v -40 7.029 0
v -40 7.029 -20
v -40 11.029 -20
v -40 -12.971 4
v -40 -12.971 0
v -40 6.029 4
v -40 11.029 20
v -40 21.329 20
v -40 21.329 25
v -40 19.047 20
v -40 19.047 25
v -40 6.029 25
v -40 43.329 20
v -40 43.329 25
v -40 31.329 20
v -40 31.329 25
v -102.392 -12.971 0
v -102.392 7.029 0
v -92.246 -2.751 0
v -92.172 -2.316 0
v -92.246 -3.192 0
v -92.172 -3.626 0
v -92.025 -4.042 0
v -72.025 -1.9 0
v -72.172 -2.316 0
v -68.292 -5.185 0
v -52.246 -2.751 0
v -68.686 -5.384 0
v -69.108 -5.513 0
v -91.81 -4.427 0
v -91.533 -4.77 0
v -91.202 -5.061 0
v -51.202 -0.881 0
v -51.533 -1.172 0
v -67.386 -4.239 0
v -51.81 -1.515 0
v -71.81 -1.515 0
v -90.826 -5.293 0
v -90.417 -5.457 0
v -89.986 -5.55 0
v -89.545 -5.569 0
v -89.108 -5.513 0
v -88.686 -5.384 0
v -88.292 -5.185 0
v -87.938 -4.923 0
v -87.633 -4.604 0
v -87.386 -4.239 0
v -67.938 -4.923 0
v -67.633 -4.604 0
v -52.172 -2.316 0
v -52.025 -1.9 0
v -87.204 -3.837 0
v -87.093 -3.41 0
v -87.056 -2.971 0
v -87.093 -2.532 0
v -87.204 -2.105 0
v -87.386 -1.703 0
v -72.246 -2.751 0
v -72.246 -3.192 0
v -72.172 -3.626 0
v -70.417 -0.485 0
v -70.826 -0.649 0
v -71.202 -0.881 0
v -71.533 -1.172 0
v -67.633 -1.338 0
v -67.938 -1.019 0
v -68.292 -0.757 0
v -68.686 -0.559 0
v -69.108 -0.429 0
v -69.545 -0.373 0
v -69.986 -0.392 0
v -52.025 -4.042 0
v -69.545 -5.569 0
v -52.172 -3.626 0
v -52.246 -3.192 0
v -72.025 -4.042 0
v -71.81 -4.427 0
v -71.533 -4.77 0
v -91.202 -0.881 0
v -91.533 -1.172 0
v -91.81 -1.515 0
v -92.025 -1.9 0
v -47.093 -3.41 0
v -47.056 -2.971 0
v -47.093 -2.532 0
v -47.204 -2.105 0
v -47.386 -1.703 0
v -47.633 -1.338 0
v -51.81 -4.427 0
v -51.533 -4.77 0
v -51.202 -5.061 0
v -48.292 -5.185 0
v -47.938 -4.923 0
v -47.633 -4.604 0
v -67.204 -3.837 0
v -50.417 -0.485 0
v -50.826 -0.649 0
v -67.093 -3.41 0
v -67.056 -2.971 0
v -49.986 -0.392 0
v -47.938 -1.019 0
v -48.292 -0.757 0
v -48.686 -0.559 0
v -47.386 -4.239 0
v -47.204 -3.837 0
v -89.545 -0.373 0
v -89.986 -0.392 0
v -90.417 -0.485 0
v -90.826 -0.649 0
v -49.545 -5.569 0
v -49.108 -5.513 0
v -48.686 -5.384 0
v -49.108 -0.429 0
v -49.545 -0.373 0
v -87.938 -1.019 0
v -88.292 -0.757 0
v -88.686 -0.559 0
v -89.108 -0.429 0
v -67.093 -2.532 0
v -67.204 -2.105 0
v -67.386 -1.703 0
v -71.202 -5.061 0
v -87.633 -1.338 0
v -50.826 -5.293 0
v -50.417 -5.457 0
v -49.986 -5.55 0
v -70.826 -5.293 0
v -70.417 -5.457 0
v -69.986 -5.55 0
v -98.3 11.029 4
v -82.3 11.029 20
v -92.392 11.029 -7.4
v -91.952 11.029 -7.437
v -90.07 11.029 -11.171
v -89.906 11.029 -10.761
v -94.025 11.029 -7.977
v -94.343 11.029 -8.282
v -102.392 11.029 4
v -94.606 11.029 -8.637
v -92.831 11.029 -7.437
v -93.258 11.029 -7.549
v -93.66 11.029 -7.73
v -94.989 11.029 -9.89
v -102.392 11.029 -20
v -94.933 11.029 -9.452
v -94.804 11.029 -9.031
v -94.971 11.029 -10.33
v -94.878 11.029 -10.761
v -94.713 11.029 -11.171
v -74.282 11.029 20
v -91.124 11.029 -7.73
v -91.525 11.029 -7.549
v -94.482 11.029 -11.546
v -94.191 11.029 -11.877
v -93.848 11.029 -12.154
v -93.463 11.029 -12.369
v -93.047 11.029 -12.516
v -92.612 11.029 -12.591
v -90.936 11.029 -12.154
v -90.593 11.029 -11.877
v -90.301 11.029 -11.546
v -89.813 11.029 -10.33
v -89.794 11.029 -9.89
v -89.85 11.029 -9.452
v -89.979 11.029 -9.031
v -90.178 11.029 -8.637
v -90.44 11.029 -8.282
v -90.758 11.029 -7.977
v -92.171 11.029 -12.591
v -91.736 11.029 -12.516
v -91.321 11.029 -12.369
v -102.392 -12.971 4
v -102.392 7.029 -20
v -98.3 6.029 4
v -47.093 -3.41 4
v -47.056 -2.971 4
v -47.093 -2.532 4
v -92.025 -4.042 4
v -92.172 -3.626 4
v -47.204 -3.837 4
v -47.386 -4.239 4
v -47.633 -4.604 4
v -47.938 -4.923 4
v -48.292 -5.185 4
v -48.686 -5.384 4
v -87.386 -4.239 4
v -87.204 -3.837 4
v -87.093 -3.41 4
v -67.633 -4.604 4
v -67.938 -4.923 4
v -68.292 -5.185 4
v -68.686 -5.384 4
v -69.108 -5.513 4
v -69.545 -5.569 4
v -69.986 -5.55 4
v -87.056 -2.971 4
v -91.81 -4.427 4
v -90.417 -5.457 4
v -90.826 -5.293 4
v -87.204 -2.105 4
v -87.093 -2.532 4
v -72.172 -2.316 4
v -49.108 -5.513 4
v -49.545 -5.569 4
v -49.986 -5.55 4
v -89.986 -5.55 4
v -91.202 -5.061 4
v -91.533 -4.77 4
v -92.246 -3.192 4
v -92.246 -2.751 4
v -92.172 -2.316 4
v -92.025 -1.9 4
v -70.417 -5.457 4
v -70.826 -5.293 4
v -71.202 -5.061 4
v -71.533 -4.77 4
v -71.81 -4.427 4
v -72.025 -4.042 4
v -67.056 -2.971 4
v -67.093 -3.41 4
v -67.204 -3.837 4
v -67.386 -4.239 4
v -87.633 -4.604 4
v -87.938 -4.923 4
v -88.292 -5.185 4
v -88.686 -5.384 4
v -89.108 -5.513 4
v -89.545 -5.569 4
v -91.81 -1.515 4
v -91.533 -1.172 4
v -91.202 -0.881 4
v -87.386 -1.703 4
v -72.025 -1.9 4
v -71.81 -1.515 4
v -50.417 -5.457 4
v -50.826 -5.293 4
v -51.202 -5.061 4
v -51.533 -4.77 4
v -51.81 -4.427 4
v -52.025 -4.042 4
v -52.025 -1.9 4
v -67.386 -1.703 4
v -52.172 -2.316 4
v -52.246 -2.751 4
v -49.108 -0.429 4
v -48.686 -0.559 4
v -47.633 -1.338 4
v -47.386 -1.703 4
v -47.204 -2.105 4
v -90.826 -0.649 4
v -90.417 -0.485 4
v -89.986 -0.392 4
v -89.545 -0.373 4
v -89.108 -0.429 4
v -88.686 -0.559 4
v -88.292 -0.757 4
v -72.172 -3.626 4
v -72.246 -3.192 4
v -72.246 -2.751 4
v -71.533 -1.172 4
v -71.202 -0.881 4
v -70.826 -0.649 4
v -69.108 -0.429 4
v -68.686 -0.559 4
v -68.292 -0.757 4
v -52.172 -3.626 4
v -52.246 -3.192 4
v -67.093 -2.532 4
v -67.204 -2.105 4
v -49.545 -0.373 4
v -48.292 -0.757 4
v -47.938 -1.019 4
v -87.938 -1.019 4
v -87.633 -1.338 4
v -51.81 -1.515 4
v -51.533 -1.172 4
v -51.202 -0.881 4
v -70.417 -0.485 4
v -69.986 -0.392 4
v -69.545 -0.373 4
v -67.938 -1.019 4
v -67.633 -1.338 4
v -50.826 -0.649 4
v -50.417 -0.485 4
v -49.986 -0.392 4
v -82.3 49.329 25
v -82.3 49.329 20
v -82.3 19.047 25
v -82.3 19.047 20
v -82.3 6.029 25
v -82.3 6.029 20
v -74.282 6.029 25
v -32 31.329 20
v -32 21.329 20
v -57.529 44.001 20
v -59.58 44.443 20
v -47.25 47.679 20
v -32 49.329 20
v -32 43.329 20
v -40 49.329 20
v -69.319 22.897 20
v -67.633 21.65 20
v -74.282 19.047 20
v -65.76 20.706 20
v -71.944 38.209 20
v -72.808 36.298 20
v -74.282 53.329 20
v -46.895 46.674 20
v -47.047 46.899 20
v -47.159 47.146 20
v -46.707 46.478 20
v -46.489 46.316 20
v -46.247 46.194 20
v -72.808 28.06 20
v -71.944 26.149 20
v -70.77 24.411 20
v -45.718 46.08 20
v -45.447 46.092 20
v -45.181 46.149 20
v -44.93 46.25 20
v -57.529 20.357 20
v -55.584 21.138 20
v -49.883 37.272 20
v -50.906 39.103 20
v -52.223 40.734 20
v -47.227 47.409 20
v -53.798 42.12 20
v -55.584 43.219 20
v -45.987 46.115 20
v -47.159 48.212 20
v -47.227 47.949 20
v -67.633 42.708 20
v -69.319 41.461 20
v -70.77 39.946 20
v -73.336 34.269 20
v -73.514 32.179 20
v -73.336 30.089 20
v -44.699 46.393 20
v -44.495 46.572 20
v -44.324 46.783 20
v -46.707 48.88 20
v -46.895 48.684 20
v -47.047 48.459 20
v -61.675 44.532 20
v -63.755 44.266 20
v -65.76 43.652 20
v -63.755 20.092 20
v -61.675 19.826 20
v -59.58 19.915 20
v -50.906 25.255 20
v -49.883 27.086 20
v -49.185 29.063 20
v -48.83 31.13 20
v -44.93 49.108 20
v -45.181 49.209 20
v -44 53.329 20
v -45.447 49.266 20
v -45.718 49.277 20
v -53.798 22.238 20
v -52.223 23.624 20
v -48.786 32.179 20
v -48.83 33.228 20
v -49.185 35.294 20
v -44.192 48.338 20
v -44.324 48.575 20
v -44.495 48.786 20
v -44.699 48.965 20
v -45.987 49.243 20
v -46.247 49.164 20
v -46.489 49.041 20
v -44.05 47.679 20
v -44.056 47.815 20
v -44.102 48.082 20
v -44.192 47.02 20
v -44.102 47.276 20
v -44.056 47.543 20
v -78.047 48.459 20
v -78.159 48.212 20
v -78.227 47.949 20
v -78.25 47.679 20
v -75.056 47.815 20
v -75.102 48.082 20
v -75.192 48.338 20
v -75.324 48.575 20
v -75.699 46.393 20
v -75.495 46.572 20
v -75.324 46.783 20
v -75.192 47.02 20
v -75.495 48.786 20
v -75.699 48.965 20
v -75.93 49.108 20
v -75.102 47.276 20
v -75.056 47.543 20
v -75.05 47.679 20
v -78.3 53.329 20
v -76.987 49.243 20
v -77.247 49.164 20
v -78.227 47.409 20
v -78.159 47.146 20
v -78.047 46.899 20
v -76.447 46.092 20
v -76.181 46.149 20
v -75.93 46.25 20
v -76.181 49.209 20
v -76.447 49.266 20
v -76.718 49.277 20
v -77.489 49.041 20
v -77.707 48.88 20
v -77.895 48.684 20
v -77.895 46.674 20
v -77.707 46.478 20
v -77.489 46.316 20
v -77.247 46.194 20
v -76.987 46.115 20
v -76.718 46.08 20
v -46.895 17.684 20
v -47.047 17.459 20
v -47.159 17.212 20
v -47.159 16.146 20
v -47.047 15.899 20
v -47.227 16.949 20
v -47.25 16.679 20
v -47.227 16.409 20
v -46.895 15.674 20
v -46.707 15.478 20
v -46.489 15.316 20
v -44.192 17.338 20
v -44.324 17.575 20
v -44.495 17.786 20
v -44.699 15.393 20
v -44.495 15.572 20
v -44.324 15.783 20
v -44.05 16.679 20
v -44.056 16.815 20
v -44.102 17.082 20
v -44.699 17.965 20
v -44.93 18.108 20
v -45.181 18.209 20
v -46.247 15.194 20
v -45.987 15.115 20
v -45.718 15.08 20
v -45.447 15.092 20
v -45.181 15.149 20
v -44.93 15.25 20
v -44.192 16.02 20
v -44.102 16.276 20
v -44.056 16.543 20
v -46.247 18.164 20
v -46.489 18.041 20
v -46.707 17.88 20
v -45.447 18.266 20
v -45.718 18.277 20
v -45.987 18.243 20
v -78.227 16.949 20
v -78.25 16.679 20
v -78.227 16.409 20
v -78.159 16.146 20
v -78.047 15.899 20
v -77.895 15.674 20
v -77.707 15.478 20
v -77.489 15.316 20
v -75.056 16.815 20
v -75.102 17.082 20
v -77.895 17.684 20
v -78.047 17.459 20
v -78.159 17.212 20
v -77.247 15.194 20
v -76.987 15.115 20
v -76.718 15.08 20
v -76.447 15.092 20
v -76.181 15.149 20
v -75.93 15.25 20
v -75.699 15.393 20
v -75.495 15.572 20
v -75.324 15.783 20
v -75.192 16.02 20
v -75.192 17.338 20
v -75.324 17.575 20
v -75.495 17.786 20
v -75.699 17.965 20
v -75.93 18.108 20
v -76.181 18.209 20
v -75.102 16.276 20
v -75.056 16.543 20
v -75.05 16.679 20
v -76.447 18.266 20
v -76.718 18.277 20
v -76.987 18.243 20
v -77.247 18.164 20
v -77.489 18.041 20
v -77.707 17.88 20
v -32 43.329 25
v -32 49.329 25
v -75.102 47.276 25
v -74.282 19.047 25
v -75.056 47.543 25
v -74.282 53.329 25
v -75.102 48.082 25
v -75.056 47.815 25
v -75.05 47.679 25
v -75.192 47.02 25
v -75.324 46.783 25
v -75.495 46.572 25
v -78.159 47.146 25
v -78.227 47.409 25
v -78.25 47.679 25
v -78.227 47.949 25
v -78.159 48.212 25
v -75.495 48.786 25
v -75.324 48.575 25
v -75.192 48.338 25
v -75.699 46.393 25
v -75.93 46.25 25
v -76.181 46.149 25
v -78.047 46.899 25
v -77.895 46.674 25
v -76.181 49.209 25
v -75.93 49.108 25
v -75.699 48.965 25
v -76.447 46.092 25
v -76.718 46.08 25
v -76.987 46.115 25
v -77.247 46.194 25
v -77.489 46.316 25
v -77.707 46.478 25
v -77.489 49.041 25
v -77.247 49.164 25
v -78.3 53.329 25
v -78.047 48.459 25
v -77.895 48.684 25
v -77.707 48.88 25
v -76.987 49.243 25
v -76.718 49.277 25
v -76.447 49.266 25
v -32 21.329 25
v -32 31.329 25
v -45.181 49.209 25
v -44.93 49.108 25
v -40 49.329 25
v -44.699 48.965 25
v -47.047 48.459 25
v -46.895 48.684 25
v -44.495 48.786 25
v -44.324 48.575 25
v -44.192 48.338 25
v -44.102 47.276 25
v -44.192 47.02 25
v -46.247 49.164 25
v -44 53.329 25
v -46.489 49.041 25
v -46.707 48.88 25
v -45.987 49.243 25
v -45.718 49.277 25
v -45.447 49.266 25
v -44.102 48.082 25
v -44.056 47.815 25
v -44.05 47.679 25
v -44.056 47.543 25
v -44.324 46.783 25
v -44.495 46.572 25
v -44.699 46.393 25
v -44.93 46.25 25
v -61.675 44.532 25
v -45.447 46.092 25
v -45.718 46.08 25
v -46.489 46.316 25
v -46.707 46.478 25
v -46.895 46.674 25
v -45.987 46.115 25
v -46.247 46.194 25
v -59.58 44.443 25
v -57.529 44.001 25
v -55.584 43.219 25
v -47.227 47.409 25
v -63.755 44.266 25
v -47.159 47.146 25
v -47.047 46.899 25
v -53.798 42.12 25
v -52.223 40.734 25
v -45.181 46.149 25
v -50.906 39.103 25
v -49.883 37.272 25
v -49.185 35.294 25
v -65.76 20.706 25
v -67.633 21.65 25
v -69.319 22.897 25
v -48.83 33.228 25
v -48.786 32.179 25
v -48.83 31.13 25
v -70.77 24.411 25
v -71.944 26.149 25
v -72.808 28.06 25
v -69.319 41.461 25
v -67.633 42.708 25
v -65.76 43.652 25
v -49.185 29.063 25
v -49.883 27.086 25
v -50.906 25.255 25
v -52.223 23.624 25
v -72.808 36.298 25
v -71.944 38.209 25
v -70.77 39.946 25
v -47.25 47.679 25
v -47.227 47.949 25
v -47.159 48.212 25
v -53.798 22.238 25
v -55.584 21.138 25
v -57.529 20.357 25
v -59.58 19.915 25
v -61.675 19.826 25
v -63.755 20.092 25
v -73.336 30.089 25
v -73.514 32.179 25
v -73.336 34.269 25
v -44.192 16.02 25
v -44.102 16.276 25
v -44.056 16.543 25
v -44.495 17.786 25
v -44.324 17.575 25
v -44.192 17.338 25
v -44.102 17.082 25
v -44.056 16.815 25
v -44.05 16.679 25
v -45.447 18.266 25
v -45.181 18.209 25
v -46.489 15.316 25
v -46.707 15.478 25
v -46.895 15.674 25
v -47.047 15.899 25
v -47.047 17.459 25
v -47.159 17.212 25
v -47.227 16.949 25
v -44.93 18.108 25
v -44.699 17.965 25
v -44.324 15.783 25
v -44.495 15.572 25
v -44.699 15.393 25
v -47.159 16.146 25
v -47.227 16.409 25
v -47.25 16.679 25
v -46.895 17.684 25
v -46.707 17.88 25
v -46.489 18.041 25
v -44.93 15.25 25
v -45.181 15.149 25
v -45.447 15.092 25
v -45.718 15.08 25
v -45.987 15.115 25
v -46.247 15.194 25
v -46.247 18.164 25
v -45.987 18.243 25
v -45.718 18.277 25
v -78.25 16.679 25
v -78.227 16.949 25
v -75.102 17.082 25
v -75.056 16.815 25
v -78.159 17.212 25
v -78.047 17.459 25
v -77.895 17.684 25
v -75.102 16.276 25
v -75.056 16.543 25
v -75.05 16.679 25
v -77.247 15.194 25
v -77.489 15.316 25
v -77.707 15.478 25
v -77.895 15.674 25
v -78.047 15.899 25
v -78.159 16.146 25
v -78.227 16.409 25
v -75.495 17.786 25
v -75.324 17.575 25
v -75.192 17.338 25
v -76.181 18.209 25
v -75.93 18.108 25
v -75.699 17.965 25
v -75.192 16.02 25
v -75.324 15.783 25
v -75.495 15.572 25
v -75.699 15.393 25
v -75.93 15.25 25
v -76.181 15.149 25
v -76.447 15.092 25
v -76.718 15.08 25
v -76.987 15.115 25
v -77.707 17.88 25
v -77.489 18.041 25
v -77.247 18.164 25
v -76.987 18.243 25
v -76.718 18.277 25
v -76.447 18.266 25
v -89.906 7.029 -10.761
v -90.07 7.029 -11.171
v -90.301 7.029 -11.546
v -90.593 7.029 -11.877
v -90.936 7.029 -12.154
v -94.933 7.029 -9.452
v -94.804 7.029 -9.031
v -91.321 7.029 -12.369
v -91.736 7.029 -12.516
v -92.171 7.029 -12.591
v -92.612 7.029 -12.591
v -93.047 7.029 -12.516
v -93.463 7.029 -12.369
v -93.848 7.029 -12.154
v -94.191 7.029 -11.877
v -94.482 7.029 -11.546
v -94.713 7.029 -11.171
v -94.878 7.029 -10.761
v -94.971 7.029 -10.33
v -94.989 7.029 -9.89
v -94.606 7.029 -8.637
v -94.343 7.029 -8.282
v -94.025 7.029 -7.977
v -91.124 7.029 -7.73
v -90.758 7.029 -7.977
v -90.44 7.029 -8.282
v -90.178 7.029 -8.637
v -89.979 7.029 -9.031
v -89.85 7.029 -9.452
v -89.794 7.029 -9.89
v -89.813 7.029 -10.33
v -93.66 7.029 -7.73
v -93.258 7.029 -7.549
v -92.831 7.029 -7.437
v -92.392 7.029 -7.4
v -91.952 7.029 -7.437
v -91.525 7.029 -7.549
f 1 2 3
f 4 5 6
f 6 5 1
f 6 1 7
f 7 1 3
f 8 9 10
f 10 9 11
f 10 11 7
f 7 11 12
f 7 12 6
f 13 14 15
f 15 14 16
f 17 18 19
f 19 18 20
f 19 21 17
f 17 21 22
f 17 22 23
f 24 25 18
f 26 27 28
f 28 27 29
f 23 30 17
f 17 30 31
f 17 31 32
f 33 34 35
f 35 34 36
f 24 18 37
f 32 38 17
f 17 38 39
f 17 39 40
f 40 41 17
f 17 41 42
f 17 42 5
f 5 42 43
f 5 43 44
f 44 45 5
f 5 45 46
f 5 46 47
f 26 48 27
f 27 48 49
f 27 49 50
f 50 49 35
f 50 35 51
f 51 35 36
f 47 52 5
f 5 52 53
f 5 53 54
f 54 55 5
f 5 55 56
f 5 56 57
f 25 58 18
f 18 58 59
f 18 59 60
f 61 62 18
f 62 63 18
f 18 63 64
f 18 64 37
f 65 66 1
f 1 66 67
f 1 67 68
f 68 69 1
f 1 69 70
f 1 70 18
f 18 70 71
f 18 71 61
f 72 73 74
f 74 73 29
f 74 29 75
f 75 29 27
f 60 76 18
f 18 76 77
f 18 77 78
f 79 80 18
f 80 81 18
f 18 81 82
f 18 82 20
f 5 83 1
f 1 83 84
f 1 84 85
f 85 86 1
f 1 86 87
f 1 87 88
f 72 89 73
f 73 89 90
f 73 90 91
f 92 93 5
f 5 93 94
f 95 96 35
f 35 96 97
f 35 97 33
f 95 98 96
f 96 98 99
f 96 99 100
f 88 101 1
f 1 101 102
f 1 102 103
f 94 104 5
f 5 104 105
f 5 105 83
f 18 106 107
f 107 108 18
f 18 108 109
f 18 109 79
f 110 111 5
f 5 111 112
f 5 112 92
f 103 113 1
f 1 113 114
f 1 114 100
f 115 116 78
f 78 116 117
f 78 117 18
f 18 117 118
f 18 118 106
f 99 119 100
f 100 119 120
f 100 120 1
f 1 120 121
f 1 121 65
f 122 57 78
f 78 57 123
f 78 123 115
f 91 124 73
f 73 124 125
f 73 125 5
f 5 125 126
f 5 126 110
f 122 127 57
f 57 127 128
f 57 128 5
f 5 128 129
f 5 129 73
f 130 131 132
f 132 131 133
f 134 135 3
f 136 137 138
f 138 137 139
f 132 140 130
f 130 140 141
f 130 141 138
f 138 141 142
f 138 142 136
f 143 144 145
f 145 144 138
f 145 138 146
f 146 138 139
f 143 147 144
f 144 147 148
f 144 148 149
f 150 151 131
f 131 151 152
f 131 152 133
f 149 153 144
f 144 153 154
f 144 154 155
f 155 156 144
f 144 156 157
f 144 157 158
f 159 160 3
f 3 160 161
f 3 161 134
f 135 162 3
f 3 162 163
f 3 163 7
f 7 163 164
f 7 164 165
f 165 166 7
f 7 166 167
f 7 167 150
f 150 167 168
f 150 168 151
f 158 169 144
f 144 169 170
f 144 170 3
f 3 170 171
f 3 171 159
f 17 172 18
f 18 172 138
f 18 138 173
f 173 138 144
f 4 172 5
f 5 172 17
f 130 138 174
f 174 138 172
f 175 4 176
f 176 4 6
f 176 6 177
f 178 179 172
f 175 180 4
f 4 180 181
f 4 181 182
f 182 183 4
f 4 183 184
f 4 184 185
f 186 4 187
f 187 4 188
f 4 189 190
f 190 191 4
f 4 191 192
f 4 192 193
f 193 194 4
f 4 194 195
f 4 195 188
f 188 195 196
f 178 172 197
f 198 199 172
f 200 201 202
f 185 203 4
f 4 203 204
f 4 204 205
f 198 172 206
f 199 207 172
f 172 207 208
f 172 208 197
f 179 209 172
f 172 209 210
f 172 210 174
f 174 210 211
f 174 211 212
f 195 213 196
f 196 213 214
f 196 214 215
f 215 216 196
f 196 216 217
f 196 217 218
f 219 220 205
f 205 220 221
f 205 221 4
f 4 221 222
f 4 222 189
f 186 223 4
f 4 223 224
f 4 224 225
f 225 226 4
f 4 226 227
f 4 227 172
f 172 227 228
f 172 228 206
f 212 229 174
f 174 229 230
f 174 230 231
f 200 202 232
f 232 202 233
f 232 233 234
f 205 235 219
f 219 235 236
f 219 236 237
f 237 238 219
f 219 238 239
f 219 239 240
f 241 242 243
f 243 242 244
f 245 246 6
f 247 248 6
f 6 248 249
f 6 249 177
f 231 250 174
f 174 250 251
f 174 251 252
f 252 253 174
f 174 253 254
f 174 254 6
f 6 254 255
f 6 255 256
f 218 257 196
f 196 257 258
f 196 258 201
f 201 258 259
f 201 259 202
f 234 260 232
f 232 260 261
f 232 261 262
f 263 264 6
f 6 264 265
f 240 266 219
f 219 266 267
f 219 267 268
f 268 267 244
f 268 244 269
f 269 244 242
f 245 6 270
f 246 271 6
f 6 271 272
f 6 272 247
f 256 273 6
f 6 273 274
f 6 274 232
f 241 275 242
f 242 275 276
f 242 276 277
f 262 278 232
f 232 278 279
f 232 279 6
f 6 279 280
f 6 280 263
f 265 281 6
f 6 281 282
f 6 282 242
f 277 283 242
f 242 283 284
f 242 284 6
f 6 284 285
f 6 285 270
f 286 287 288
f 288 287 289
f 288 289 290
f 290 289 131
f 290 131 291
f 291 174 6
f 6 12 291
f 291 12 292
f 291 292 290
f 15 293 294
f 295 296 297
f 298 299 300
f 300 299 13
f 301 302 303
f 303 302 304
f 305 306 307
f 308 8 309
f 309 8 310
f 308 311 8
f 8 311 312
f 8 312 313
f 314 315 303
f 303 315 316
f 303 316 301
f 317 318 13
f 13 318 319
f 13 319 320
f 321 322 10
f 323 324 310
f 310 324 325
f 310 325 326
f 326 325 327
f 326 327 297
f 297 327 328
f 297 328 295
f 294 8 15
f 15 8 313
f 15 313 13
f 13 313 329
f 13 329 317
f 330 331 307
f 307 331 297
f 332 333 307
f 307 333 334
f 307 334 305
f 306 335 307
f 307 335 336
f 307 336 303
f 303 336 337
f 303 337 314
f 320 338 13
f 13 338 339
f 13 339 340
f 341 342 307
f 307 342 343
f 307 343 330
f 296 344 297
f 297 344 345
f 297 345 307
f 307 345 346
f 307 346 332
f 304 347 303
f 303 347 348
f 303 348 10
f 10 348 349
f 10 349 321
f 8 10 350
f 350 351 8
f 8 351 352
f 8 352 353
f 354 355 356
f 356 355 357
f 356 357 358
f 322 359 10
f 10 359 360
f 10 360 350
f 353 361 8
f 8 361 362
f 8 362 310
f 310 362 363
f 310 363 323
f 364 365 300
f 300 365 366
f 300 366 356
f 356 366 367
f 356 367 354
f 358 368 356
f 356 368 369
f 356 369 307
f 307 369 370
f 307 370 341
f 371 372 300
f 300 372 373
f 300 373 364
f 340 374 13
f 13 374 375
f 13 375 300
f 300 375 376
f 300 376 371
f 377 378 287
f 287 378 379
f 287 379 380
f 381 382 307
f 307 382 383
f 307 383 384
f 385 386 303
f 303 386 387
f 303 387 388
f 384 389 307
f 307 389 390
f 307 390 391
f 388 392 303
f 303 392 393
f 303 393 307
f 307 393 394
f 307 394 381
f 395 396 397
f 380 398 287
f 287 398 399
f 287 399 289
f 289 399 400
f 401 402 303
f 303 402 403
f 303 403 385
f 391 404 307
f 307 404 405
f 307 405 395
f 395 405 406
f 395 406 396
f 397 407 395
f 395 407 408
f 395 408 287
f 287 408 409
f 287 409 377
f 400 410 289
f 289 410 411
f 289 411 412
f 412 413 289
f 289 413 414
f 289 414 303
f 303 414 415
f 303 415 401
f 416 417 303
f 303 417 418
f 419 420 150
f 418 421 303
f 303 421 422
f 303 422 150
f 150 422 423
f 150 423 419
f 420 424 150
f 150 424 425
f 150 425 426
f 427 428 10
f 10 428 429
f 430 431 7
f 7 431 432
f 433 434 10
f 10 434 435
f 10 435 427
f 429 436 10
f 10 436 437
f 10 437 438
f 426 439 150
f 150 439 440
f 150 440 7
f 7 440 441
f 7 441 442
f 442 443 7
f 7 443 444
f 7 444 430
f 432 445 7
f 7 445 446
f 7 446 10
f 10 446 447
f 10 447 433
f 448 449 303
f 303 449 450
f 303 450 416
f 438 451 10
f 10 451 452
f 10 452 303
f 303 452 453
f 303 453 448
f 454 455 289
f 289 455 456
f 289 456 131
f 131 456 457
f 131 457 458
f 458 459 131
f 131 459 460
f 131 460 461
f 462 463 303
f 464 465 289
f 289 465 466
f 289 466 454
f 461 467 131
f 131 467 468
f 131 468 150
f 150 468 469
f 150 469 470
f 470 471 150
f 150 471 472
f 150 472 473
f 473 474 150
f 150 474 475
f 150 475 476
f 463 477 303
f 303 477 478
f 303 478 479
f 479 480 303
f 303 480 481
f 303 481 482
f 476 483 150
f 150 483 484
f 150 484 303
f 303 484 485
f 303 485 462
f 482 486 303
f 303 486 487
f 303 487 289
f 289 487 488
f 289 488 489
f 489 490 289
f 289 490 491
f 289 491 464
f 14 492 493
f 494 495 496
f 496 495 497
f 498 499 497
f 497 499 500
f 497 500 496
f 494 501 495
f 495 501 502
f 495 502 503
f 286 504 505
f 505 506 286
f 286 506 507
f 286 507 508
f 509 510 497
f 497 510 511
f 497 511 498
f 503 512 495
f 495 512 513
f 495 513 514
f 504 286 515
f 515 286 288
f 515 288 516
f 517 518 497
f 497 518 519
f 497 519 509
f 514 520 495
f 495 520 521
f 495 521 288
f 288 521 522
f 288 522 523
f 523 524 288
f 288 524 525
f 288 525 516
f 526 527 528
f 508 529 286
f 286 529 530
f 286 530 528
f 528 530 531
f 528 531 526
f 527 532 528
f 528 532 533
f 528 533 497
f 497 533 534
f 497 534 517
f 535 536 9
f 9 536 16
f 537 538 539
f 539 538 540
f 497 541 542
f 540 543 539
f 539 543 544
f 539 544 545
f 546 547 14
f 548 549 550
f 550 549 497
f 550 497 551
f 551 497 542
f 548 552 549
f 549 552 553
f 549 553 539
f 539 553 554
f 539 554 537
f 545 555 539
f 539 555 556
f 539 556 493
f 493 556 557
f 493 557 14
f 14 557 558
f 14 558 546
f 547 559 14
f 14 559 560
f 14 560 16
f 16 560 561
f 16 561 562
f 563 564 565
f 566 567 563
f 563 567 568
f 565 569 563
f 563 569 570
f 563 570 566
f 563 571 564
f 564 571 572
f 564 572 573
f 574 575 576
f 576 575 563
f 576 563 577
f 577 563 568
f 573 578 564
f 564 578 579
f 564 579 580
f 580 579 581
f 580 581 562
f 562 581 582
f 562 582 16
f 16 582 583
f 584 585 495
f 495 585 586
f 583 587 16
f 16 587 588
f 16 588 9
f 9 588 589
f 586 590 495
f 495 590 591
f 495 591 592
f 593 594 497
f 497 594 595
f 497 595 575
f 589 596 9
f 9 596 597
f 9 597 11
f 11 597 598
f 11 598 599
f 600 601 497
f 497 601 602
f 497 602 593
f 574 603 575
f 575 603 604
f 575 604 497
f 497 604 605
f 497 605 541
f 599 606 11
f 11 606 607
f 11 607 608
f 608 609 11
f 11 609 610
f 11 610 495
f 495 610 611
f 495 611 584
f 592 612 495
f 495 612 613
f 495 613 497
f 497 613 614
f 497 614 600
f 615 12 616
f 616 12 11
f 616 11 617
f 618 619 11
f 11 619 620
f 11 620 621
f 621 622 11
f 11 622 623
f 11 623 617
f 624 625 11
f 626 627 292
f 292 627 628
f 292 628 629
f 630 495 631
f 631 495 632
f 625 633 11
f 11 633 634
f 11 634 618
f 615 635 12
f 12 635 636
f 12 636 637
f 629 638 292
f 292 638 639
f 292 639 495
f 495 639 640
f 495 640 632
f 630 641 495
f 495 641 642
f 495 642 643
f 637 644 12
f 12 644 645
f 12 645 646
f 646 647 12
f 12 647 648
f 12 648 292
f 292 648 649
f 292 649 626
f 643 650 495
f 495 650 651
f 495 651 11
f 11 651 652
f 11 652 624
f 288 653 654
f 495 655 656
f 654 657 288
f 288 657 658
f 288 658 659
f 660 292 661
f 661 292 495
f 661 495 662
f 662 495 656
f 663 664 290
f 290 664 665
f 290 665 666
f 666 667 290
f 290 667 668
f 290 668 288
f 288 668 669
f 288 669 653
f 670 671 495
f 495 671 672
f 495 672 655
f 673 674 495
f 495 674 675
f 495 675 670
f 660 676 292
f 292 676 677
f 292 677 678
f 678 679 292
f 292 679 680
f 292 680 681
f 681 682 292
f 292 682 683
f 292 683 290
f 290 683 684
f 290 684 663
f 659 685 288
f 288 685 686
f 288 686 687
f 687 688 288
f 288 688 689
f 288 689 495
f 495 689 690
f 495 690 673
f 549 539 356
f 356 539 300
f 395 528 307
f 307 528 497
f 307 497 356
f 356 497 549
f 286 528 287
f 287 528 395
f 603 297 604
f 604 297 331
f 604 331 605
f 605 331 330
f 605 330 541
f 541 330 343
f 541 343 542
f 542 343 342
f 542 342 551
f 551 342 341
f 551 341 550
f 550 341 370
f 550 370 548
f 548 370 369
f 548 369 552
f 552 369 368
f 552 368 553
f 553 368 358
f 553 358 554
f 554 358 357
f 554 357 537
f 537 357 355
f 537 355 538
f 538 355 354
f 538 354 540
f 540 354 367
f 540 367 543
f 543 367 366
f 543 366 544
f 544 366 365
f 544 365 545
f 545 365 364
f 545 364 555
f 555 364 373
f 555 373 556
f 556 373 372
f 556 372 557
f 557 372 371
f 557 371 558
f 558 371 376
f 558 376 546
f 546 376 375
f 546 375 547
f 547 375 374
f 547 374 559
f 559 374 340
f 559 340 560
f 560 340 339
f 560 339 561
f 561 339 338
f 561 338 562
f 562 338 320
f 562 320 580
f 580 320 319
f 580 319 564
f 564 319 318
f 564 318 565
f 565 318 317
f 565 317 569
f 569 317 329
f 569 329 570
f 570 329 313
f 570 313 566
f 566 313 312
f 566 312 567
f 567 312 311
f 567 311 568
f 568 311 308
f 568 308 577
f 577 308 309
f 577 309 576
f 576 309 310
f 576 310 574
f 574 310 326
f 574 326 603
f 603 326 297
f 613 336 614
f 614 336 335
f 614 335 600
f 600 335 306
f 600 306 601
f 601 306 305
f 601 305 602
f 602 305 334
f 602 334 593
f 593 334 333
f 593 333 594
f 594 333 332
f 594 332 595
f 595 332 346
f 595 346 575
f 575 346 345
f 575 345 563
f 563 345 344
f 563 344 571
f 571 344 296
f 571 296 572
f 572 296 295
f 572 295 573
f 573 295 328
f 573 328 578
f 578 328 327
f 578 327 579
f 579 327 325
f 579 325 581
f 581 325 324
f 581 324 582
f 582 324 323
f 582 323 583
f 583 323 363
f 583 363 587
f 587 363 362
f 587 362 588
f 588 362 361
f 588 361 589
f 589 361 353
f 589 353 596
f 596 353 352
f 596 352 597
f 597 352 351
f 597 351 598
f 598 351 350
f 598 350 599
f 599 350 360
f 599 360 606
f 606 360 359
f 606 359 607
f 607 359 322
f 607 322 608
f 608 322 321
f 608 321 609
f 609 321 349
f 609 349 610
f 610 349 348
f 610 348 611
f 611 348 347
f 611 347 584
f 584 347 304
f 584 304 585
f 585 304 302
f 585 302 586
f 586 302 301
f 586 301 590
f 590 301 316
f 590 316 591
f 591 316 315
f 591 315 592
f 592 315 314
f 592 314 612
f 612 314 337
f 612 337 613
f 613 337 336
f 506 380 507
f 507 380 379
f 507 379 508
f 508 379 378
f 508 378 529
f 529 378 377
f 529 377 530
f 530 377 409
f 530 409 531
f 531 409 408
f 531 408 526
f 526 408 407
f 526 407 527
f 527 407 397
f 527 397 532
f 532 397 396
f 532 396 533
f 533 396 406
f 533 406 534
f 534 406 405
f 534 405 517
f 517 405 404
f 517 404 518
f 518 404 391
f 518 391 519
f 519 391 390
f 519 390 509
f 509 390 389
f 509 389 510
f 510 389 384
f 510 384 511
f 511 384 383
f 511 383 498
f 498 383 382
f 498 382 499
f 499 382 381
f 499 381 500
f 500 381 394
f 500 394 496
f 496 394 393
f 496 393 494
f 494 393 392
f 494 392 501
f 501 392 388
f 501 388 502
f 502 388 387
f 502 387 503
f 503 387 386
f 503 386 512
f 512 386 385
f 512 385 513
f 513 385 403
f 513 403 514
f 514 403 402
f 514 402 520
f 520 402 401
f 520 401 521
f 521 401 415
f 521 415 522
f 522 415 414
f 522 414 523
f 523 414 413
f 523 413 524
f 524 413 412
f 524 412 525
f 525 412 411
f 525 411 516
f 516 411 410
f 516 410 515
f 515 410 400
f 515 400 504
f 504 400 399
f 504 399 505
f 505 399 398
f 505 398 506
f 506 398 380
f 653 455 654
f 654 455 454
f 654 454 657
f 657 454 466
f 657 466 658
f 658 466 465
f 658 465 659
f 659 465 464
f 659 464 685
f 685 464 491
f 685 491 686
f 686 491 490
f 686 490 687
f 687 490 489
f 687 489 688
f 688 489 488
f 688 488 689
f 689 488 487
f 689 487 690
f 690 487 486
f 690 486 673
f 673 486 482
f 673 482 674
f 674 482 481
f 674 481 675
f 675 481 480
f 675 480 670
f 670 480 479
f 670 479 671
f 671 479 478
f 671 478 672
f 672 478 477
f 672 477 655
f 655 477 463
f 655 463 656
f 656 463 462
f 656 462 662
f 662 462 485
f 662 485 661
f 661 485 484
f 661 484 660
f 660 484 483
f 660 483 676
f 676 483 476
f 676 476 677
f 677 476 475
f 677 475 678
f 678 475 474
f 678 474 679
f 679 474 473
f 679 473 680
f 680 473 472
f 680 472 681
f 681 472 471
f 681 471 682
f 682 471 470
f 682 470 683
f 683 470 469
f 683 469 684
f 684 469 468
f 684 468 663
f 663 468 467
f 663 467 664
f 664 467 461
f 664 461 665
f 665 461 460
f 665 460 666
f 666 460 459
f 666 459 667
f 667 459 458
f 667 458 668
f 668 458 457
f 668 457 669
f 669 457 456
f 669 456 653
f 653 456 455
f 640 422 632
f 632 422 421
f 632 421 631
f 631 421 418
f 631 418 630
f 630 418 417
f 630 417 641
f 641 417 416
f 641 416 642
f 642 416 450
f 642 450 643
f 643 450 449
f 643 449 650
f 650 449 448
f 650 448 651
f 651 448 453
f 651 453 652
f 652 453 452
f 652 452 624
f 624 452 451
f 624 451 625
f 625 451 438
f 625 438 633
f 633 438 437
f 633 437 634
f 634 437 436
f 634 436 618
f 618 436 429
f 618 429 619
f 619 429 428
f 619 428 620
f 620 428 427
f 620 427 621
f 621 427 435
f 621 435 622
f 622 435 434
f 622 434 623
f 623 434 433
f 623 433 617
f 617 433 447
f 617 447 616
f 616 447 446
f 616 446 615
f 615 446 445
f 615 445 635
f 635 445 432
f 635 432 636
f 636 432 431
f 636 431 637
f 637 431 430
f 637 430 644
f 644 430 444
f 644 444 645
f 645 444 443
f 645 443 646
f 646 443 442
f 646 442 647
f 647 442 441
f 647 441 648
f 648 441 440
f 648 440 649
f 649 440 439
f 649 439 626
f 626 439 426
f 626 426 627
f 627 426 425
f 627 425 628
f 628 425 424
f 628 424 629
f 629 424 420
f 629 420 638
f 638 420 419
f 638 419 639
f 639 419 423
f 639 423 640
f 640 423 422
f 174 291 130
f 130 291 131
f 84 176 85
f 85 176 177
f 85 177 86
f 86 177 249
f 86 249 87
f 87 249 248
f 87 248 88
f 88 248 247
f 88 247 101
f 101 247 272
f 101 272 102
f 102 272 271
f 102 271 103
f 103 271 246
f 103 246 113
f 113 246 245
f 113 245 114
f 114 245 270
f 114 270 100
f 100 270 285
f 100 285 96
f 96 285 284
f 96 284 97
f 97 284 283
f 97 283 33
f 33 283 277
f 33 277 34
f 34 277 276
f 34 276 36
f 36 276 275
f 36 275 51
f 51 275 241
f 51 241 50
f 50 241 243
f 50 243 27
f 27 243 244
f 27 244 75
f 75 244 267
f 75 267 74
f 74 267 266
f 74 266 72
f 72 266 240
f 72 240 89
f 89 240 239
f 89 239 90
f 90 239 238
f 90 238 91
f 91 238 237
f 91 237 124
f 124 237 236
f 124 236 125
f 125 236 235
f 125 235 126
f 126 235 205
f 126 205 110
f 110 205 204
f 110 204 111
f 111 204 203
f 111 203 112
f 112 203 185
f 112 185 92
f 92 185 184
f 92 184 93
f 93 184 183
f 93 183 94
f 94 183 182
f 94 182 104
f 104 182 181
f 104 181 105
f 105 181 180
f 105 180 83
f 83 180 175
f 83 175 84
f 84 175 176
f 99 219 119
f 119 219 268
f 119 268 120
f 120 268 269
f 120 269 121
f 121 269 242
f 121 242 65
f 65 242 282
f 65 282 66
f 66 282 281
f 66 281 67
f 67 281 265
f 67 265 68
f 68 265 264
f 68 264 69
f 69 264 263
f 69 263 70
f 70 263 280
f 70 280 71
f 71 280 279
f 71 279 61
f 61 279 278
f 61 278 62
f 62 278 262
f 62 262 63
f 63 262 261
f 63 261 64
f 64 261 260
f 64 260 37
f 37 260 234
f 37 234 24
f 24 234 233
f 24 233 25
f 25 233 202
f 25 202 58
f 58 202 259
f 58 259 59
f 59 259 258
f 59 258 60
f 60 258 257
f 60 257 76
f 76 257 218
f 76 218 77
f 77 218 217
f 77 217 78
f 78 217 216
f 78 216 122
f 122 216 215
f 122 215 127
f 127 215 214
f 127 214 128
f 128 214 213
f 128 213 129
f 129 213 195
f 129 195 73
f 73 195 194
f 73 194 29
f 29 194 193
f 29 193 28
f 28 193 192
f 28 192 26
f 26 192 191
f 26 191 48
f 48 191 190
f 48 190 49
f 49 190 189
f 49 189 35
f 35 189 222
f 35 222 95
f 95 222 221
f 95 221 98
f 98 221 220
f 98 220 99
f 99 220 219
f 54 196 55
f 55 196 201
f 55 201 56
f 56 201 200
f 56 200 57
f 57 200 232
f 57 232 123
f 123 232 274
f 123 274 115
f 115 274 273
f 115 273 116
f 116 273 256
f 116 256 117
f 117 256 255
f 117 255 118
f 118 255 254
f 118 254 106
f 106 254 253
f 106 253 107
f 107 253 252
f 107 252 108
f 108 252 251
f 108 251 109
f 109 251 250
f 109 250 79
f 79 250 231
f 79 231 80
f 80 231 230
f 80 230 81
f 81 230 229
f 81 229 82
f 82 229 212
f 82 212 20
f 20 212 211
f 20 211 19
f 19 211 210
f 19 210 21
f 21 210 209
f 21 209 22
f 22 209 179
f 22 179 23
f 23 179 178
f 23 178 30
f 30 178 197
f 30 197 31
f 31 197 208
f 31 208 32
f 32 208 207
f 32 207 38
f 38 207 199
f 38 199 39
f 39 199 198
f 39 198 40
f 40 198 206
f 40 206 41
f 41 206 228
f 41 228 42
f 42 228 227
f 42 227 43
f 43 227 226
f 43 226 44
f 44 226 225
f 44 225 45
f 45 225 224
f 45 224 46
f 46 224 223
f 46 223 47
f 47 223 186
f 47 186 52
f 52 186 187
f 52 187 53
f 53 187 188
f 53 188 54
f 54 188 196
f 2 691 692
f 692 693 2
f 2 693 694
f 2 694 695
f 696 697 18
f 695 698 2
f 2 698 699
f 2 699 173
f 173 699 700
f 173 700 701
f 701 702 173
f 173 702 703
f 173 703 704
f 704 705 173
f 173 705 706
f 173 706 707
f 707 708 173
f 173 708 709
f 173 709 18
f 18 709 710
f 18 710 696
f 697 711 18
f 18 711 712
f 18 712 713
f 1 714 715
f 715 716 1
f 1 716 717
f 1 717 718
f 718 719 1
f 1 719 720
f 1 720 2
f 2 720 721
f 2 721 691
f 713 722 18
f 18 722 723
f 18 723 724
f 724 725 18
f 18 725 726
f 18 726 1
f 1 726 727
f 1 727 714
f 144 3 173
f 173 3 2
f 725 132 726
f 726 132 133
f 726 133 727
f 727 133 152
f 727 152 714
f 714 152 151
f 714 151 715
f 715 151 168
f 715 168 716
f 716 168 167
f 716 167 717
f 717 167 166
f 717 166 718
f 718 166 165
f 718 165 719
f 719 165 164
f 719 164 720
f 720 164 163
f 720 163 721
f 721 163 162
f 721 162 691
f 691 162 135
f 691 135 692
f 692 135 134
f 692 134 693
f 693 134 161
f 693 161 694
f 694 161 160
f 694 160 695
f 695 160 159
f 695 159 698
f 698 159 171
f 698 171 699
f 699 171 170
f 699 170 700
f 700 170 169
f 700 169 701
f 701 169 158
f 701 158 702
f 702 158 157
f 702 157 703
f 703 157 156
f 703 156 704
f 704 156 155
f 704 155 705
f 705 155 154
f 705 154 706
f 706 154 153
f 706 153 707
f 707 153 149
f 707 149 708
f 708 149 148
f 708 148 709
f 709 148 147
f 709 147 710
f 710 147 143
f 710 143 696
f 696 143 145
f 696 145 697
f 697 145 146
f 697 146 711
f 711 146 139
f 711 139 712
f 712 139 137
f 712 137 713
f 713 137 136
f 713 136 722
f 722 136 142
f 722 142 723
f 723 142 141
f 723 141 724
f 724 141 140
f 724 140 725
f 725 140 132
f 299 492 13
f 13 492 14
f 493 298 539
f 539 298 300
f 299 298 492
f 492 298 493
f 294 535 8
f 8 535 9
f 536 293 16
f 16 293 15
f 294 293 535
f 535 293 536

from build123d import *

# Parameters (mm, degrees)
SKICA1_W                 = 62.391596743
SKICA1_H                 = 24
P_IDAT_VYSUNUT_M1_DEPTH  = 4
SKICA2_W                 = 42.3
SKICA2_H                 = 5
P_IDAT_VYSUNUT_M2_DEPTH  = 16
SKICA3_R                 = 1.6
SKICA3_R_2               = 12.36434098
P_IDAT_VYSUNUT_M5_DEPTH  = 5
ZKOSEN_1_SIZE            = 16
SKICA4_R                 = 2.6
ODEBRAT_VYSUNUT_M1_DEPTH = 4
SKICA5_W                 = 62.391596743
SKICA5_H                 = 4
P_IDAT_VYSUNUT_M6_DEPTH  = 20
SKICA6_R                 = 2.6
ODEBRAT_VYSUNUT_M2_DEPTH = 4
SKICA7_W                 = 5
SKICA7_H                 = 6
SKICA7_H_2               = 10
P_IDAT_VYSUNUT_M7_DEPTH  = 8


with BuildPart() as part:
    # Skica1 → Přidat vysunutím1 (new body)
    with BuildSketch(Plane.XY):
        with Locations((-71.195798372, -0.971059771)):
            Rectangle(SKICA1_W, SKICA1_H)
    extrude(amount=P_IDAT_VYSUNUT_M1_DEPTH)

    # Skica2 → Přidat vysunutím2 (add)
    with BuildSketch(Plane.XY.offset(4)):
        with Locations((-61.15, 8.528940229)):
            Rectangle(SKICA2_W, SKICA2_H)
    extrude(amount=P_IDAT_VYSUNUT_M2_DEPTH)

    # Skica3 → Přidat vysunutím5 (add)
    with BuildSketch(Plane.XY.offset(20)):
        Polygon((-40, 6.028940229), (-82.3, 6.028940229), (-82.3, 49.328940229), (-78.3, 53.328940229), (-44, 53.328940229), (-40, 49.328940229), align=None)
        with Locations((-45.65, 47.678940229)):
            Circle(SKICA3_R, mode=Mode.SUBTRACT)
        with Locations((-76.65, 47.678940229)):
            Circle(SKICA3_R, mode=Mode.SUBTRACT)
        with Locations((-76.65, 16.678940229)):
            Circle(SKICA3_R, mode=Mode.SUBTRACT)
        with Locations((-45.65, 16.678940229)):
            Circle(SKICA3_R, mode=Mode.SUBTRACT)
        with Locations((-61.15, 32.178940229)):
            Circle(SKICA3_R_2, mode=Mode.SUBTRACT)
    extrude(amount=P_IDAT_VYSUNUT_M5_DEPTH)

    # Zkosení1
    zkosen_1_edges = [part.edges().sort_by_distance(p)[0] for p in [
        (-82.3, 8.528940229, 4),
    ]]
    chamfer(zkosen_1_edges, length=ZKOSEN_1_SIZE)

    # Skica4 → Odebrat vysunutím1 (cut)
    with BuildSketch(Plane.XY.offset(4)):
        with Locations((-89.655606689, -2.971059771)):
            Circle(SKICA4_R)
        with Locations((-69.655606689, -2.971059771)):
            Circle(SKICA4_R)
        with Locations((-49.655606689, -2.971059771)):
            Circle(SKICA4_R)
    extrude(amount=-ODEBRAT_VYSUNUT_M1_DEPTH, mode=Mode.SUBTRACT)

    # Skica5 → Přidat vysunutím6 (add)
    with BuildSketch(Plane(origin=(0, 0, 0), x_dir=(-1, 0, 0), z_dir=(0, 0, -1))):
        with Locations((71.195798372, 9.028940229)):
            Rectangle(SKICA5_W, SKICA5_H)
    extrude(amount=P_IDAT_VYSUNUT_M6_DEPTH)

    # Skica6 → Odebrat vysunutím2 (cut)
    with BuildSketch(Plane(origin=(0, 11.028940229, 0), x_dir=(1, 0, 0), z_dir=(0, 1, 0))):
        with Locations(Location((-92.391596743, 10, 0), (0, 0, 270))):
            Circle(SKICA6_R)
    extrude(amount=-ODEBRAT_VYSUNUT_M2_DEPTH, mode=Mode.SUBTRACT)

    # Skica7 → Přidat vysunutím7 (add)
    with BuildSketch(Plane(origin=(-40, 0, 0), x_dir=(0, 0, -1), z_dir=(1, 0, 0))):
        with Locations((-22.5, 46.328940229)):
            Rectangle(SKICA7_W, SKICA7_H)
        with Locations((-22.5, 26.328940229)):
            Rectangle(SKICA7_W, SKICA7_H_2)
    extrude(amount=P_IDAT_VYSUNUT_M7_DEPTH)


solid = part.part
